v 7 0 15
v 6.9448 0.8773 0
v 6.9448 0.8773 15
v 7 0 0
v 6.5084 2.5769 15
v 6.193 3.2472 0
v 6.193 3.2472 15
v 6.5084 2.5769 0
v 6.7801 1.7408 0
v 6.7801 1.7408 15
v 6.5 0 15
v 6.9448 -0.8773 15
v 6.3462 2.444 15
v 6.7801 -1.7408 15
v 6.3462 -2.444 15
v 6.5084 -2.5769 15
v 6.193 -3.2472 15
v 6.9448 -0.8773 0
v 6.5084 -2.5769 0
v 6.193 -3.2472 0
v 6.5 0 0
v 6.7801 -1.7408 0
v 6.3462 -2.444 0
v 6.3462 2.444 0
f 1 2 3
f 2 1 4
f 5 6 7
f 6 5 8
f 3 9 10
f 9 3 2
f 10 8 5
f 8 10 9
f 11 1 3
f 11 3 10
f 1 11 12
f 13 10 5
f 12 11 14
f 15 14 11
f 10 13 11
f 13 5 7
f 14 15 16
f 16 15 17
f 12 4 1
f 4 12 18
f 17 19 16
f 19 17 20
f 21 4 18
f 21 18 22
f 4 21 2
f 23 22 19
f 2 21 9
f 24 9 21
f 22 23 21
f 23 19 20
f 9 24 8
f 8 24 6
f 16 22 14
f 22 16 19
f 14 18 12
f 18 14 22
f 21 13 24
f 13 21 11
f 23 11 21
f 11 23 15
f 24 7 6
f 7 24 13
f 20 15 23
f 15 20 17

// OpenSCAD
$fn = 50;


difference() {
	union() {
		cylinder(h = 15, r = 7.0000000000);
		translate(v = [-16.0000000000, 0, 0]) {
			cylinder(h = 15, r = 7.0000000000);
		}
	}
	union() {
		cylinder(h = 15, r = 3.2500000000);
		cylinder(h = 15, r = 1.8000000000);
		cylinder(h = 15, r = 1.8000000000);
		cylinder(h = 15, r = 1.8000000000);
		translate(v = [-20.5000000000, 0, 0]) {
			hull() {
				translate(v = [-3.7500000000, 0.0000000000, 0]) {
					cylinder(h = 15, r = 10.5000000000);
				}
				translate(v = [3.7500000000, 0.0000000000, 0]) {
					cylinder(h = 15, r = 10.5000000000);
				}
				translate(v = [-3.7500000000, -0.0000000000, 0]) {
					cylinder(h = 15, r = 10.5000000000);
				}
				translate(v = [3.7500000000, -0.0000000000, 0]) {
					cylinder(h = 15, r = 10.5000000000);
				}
			}
		}
		translate(v = [-13.0000000000, 0, 0.0000000000]) {
			cylinder(h = 15, r = 19.5000000000);
		}
	}
}
